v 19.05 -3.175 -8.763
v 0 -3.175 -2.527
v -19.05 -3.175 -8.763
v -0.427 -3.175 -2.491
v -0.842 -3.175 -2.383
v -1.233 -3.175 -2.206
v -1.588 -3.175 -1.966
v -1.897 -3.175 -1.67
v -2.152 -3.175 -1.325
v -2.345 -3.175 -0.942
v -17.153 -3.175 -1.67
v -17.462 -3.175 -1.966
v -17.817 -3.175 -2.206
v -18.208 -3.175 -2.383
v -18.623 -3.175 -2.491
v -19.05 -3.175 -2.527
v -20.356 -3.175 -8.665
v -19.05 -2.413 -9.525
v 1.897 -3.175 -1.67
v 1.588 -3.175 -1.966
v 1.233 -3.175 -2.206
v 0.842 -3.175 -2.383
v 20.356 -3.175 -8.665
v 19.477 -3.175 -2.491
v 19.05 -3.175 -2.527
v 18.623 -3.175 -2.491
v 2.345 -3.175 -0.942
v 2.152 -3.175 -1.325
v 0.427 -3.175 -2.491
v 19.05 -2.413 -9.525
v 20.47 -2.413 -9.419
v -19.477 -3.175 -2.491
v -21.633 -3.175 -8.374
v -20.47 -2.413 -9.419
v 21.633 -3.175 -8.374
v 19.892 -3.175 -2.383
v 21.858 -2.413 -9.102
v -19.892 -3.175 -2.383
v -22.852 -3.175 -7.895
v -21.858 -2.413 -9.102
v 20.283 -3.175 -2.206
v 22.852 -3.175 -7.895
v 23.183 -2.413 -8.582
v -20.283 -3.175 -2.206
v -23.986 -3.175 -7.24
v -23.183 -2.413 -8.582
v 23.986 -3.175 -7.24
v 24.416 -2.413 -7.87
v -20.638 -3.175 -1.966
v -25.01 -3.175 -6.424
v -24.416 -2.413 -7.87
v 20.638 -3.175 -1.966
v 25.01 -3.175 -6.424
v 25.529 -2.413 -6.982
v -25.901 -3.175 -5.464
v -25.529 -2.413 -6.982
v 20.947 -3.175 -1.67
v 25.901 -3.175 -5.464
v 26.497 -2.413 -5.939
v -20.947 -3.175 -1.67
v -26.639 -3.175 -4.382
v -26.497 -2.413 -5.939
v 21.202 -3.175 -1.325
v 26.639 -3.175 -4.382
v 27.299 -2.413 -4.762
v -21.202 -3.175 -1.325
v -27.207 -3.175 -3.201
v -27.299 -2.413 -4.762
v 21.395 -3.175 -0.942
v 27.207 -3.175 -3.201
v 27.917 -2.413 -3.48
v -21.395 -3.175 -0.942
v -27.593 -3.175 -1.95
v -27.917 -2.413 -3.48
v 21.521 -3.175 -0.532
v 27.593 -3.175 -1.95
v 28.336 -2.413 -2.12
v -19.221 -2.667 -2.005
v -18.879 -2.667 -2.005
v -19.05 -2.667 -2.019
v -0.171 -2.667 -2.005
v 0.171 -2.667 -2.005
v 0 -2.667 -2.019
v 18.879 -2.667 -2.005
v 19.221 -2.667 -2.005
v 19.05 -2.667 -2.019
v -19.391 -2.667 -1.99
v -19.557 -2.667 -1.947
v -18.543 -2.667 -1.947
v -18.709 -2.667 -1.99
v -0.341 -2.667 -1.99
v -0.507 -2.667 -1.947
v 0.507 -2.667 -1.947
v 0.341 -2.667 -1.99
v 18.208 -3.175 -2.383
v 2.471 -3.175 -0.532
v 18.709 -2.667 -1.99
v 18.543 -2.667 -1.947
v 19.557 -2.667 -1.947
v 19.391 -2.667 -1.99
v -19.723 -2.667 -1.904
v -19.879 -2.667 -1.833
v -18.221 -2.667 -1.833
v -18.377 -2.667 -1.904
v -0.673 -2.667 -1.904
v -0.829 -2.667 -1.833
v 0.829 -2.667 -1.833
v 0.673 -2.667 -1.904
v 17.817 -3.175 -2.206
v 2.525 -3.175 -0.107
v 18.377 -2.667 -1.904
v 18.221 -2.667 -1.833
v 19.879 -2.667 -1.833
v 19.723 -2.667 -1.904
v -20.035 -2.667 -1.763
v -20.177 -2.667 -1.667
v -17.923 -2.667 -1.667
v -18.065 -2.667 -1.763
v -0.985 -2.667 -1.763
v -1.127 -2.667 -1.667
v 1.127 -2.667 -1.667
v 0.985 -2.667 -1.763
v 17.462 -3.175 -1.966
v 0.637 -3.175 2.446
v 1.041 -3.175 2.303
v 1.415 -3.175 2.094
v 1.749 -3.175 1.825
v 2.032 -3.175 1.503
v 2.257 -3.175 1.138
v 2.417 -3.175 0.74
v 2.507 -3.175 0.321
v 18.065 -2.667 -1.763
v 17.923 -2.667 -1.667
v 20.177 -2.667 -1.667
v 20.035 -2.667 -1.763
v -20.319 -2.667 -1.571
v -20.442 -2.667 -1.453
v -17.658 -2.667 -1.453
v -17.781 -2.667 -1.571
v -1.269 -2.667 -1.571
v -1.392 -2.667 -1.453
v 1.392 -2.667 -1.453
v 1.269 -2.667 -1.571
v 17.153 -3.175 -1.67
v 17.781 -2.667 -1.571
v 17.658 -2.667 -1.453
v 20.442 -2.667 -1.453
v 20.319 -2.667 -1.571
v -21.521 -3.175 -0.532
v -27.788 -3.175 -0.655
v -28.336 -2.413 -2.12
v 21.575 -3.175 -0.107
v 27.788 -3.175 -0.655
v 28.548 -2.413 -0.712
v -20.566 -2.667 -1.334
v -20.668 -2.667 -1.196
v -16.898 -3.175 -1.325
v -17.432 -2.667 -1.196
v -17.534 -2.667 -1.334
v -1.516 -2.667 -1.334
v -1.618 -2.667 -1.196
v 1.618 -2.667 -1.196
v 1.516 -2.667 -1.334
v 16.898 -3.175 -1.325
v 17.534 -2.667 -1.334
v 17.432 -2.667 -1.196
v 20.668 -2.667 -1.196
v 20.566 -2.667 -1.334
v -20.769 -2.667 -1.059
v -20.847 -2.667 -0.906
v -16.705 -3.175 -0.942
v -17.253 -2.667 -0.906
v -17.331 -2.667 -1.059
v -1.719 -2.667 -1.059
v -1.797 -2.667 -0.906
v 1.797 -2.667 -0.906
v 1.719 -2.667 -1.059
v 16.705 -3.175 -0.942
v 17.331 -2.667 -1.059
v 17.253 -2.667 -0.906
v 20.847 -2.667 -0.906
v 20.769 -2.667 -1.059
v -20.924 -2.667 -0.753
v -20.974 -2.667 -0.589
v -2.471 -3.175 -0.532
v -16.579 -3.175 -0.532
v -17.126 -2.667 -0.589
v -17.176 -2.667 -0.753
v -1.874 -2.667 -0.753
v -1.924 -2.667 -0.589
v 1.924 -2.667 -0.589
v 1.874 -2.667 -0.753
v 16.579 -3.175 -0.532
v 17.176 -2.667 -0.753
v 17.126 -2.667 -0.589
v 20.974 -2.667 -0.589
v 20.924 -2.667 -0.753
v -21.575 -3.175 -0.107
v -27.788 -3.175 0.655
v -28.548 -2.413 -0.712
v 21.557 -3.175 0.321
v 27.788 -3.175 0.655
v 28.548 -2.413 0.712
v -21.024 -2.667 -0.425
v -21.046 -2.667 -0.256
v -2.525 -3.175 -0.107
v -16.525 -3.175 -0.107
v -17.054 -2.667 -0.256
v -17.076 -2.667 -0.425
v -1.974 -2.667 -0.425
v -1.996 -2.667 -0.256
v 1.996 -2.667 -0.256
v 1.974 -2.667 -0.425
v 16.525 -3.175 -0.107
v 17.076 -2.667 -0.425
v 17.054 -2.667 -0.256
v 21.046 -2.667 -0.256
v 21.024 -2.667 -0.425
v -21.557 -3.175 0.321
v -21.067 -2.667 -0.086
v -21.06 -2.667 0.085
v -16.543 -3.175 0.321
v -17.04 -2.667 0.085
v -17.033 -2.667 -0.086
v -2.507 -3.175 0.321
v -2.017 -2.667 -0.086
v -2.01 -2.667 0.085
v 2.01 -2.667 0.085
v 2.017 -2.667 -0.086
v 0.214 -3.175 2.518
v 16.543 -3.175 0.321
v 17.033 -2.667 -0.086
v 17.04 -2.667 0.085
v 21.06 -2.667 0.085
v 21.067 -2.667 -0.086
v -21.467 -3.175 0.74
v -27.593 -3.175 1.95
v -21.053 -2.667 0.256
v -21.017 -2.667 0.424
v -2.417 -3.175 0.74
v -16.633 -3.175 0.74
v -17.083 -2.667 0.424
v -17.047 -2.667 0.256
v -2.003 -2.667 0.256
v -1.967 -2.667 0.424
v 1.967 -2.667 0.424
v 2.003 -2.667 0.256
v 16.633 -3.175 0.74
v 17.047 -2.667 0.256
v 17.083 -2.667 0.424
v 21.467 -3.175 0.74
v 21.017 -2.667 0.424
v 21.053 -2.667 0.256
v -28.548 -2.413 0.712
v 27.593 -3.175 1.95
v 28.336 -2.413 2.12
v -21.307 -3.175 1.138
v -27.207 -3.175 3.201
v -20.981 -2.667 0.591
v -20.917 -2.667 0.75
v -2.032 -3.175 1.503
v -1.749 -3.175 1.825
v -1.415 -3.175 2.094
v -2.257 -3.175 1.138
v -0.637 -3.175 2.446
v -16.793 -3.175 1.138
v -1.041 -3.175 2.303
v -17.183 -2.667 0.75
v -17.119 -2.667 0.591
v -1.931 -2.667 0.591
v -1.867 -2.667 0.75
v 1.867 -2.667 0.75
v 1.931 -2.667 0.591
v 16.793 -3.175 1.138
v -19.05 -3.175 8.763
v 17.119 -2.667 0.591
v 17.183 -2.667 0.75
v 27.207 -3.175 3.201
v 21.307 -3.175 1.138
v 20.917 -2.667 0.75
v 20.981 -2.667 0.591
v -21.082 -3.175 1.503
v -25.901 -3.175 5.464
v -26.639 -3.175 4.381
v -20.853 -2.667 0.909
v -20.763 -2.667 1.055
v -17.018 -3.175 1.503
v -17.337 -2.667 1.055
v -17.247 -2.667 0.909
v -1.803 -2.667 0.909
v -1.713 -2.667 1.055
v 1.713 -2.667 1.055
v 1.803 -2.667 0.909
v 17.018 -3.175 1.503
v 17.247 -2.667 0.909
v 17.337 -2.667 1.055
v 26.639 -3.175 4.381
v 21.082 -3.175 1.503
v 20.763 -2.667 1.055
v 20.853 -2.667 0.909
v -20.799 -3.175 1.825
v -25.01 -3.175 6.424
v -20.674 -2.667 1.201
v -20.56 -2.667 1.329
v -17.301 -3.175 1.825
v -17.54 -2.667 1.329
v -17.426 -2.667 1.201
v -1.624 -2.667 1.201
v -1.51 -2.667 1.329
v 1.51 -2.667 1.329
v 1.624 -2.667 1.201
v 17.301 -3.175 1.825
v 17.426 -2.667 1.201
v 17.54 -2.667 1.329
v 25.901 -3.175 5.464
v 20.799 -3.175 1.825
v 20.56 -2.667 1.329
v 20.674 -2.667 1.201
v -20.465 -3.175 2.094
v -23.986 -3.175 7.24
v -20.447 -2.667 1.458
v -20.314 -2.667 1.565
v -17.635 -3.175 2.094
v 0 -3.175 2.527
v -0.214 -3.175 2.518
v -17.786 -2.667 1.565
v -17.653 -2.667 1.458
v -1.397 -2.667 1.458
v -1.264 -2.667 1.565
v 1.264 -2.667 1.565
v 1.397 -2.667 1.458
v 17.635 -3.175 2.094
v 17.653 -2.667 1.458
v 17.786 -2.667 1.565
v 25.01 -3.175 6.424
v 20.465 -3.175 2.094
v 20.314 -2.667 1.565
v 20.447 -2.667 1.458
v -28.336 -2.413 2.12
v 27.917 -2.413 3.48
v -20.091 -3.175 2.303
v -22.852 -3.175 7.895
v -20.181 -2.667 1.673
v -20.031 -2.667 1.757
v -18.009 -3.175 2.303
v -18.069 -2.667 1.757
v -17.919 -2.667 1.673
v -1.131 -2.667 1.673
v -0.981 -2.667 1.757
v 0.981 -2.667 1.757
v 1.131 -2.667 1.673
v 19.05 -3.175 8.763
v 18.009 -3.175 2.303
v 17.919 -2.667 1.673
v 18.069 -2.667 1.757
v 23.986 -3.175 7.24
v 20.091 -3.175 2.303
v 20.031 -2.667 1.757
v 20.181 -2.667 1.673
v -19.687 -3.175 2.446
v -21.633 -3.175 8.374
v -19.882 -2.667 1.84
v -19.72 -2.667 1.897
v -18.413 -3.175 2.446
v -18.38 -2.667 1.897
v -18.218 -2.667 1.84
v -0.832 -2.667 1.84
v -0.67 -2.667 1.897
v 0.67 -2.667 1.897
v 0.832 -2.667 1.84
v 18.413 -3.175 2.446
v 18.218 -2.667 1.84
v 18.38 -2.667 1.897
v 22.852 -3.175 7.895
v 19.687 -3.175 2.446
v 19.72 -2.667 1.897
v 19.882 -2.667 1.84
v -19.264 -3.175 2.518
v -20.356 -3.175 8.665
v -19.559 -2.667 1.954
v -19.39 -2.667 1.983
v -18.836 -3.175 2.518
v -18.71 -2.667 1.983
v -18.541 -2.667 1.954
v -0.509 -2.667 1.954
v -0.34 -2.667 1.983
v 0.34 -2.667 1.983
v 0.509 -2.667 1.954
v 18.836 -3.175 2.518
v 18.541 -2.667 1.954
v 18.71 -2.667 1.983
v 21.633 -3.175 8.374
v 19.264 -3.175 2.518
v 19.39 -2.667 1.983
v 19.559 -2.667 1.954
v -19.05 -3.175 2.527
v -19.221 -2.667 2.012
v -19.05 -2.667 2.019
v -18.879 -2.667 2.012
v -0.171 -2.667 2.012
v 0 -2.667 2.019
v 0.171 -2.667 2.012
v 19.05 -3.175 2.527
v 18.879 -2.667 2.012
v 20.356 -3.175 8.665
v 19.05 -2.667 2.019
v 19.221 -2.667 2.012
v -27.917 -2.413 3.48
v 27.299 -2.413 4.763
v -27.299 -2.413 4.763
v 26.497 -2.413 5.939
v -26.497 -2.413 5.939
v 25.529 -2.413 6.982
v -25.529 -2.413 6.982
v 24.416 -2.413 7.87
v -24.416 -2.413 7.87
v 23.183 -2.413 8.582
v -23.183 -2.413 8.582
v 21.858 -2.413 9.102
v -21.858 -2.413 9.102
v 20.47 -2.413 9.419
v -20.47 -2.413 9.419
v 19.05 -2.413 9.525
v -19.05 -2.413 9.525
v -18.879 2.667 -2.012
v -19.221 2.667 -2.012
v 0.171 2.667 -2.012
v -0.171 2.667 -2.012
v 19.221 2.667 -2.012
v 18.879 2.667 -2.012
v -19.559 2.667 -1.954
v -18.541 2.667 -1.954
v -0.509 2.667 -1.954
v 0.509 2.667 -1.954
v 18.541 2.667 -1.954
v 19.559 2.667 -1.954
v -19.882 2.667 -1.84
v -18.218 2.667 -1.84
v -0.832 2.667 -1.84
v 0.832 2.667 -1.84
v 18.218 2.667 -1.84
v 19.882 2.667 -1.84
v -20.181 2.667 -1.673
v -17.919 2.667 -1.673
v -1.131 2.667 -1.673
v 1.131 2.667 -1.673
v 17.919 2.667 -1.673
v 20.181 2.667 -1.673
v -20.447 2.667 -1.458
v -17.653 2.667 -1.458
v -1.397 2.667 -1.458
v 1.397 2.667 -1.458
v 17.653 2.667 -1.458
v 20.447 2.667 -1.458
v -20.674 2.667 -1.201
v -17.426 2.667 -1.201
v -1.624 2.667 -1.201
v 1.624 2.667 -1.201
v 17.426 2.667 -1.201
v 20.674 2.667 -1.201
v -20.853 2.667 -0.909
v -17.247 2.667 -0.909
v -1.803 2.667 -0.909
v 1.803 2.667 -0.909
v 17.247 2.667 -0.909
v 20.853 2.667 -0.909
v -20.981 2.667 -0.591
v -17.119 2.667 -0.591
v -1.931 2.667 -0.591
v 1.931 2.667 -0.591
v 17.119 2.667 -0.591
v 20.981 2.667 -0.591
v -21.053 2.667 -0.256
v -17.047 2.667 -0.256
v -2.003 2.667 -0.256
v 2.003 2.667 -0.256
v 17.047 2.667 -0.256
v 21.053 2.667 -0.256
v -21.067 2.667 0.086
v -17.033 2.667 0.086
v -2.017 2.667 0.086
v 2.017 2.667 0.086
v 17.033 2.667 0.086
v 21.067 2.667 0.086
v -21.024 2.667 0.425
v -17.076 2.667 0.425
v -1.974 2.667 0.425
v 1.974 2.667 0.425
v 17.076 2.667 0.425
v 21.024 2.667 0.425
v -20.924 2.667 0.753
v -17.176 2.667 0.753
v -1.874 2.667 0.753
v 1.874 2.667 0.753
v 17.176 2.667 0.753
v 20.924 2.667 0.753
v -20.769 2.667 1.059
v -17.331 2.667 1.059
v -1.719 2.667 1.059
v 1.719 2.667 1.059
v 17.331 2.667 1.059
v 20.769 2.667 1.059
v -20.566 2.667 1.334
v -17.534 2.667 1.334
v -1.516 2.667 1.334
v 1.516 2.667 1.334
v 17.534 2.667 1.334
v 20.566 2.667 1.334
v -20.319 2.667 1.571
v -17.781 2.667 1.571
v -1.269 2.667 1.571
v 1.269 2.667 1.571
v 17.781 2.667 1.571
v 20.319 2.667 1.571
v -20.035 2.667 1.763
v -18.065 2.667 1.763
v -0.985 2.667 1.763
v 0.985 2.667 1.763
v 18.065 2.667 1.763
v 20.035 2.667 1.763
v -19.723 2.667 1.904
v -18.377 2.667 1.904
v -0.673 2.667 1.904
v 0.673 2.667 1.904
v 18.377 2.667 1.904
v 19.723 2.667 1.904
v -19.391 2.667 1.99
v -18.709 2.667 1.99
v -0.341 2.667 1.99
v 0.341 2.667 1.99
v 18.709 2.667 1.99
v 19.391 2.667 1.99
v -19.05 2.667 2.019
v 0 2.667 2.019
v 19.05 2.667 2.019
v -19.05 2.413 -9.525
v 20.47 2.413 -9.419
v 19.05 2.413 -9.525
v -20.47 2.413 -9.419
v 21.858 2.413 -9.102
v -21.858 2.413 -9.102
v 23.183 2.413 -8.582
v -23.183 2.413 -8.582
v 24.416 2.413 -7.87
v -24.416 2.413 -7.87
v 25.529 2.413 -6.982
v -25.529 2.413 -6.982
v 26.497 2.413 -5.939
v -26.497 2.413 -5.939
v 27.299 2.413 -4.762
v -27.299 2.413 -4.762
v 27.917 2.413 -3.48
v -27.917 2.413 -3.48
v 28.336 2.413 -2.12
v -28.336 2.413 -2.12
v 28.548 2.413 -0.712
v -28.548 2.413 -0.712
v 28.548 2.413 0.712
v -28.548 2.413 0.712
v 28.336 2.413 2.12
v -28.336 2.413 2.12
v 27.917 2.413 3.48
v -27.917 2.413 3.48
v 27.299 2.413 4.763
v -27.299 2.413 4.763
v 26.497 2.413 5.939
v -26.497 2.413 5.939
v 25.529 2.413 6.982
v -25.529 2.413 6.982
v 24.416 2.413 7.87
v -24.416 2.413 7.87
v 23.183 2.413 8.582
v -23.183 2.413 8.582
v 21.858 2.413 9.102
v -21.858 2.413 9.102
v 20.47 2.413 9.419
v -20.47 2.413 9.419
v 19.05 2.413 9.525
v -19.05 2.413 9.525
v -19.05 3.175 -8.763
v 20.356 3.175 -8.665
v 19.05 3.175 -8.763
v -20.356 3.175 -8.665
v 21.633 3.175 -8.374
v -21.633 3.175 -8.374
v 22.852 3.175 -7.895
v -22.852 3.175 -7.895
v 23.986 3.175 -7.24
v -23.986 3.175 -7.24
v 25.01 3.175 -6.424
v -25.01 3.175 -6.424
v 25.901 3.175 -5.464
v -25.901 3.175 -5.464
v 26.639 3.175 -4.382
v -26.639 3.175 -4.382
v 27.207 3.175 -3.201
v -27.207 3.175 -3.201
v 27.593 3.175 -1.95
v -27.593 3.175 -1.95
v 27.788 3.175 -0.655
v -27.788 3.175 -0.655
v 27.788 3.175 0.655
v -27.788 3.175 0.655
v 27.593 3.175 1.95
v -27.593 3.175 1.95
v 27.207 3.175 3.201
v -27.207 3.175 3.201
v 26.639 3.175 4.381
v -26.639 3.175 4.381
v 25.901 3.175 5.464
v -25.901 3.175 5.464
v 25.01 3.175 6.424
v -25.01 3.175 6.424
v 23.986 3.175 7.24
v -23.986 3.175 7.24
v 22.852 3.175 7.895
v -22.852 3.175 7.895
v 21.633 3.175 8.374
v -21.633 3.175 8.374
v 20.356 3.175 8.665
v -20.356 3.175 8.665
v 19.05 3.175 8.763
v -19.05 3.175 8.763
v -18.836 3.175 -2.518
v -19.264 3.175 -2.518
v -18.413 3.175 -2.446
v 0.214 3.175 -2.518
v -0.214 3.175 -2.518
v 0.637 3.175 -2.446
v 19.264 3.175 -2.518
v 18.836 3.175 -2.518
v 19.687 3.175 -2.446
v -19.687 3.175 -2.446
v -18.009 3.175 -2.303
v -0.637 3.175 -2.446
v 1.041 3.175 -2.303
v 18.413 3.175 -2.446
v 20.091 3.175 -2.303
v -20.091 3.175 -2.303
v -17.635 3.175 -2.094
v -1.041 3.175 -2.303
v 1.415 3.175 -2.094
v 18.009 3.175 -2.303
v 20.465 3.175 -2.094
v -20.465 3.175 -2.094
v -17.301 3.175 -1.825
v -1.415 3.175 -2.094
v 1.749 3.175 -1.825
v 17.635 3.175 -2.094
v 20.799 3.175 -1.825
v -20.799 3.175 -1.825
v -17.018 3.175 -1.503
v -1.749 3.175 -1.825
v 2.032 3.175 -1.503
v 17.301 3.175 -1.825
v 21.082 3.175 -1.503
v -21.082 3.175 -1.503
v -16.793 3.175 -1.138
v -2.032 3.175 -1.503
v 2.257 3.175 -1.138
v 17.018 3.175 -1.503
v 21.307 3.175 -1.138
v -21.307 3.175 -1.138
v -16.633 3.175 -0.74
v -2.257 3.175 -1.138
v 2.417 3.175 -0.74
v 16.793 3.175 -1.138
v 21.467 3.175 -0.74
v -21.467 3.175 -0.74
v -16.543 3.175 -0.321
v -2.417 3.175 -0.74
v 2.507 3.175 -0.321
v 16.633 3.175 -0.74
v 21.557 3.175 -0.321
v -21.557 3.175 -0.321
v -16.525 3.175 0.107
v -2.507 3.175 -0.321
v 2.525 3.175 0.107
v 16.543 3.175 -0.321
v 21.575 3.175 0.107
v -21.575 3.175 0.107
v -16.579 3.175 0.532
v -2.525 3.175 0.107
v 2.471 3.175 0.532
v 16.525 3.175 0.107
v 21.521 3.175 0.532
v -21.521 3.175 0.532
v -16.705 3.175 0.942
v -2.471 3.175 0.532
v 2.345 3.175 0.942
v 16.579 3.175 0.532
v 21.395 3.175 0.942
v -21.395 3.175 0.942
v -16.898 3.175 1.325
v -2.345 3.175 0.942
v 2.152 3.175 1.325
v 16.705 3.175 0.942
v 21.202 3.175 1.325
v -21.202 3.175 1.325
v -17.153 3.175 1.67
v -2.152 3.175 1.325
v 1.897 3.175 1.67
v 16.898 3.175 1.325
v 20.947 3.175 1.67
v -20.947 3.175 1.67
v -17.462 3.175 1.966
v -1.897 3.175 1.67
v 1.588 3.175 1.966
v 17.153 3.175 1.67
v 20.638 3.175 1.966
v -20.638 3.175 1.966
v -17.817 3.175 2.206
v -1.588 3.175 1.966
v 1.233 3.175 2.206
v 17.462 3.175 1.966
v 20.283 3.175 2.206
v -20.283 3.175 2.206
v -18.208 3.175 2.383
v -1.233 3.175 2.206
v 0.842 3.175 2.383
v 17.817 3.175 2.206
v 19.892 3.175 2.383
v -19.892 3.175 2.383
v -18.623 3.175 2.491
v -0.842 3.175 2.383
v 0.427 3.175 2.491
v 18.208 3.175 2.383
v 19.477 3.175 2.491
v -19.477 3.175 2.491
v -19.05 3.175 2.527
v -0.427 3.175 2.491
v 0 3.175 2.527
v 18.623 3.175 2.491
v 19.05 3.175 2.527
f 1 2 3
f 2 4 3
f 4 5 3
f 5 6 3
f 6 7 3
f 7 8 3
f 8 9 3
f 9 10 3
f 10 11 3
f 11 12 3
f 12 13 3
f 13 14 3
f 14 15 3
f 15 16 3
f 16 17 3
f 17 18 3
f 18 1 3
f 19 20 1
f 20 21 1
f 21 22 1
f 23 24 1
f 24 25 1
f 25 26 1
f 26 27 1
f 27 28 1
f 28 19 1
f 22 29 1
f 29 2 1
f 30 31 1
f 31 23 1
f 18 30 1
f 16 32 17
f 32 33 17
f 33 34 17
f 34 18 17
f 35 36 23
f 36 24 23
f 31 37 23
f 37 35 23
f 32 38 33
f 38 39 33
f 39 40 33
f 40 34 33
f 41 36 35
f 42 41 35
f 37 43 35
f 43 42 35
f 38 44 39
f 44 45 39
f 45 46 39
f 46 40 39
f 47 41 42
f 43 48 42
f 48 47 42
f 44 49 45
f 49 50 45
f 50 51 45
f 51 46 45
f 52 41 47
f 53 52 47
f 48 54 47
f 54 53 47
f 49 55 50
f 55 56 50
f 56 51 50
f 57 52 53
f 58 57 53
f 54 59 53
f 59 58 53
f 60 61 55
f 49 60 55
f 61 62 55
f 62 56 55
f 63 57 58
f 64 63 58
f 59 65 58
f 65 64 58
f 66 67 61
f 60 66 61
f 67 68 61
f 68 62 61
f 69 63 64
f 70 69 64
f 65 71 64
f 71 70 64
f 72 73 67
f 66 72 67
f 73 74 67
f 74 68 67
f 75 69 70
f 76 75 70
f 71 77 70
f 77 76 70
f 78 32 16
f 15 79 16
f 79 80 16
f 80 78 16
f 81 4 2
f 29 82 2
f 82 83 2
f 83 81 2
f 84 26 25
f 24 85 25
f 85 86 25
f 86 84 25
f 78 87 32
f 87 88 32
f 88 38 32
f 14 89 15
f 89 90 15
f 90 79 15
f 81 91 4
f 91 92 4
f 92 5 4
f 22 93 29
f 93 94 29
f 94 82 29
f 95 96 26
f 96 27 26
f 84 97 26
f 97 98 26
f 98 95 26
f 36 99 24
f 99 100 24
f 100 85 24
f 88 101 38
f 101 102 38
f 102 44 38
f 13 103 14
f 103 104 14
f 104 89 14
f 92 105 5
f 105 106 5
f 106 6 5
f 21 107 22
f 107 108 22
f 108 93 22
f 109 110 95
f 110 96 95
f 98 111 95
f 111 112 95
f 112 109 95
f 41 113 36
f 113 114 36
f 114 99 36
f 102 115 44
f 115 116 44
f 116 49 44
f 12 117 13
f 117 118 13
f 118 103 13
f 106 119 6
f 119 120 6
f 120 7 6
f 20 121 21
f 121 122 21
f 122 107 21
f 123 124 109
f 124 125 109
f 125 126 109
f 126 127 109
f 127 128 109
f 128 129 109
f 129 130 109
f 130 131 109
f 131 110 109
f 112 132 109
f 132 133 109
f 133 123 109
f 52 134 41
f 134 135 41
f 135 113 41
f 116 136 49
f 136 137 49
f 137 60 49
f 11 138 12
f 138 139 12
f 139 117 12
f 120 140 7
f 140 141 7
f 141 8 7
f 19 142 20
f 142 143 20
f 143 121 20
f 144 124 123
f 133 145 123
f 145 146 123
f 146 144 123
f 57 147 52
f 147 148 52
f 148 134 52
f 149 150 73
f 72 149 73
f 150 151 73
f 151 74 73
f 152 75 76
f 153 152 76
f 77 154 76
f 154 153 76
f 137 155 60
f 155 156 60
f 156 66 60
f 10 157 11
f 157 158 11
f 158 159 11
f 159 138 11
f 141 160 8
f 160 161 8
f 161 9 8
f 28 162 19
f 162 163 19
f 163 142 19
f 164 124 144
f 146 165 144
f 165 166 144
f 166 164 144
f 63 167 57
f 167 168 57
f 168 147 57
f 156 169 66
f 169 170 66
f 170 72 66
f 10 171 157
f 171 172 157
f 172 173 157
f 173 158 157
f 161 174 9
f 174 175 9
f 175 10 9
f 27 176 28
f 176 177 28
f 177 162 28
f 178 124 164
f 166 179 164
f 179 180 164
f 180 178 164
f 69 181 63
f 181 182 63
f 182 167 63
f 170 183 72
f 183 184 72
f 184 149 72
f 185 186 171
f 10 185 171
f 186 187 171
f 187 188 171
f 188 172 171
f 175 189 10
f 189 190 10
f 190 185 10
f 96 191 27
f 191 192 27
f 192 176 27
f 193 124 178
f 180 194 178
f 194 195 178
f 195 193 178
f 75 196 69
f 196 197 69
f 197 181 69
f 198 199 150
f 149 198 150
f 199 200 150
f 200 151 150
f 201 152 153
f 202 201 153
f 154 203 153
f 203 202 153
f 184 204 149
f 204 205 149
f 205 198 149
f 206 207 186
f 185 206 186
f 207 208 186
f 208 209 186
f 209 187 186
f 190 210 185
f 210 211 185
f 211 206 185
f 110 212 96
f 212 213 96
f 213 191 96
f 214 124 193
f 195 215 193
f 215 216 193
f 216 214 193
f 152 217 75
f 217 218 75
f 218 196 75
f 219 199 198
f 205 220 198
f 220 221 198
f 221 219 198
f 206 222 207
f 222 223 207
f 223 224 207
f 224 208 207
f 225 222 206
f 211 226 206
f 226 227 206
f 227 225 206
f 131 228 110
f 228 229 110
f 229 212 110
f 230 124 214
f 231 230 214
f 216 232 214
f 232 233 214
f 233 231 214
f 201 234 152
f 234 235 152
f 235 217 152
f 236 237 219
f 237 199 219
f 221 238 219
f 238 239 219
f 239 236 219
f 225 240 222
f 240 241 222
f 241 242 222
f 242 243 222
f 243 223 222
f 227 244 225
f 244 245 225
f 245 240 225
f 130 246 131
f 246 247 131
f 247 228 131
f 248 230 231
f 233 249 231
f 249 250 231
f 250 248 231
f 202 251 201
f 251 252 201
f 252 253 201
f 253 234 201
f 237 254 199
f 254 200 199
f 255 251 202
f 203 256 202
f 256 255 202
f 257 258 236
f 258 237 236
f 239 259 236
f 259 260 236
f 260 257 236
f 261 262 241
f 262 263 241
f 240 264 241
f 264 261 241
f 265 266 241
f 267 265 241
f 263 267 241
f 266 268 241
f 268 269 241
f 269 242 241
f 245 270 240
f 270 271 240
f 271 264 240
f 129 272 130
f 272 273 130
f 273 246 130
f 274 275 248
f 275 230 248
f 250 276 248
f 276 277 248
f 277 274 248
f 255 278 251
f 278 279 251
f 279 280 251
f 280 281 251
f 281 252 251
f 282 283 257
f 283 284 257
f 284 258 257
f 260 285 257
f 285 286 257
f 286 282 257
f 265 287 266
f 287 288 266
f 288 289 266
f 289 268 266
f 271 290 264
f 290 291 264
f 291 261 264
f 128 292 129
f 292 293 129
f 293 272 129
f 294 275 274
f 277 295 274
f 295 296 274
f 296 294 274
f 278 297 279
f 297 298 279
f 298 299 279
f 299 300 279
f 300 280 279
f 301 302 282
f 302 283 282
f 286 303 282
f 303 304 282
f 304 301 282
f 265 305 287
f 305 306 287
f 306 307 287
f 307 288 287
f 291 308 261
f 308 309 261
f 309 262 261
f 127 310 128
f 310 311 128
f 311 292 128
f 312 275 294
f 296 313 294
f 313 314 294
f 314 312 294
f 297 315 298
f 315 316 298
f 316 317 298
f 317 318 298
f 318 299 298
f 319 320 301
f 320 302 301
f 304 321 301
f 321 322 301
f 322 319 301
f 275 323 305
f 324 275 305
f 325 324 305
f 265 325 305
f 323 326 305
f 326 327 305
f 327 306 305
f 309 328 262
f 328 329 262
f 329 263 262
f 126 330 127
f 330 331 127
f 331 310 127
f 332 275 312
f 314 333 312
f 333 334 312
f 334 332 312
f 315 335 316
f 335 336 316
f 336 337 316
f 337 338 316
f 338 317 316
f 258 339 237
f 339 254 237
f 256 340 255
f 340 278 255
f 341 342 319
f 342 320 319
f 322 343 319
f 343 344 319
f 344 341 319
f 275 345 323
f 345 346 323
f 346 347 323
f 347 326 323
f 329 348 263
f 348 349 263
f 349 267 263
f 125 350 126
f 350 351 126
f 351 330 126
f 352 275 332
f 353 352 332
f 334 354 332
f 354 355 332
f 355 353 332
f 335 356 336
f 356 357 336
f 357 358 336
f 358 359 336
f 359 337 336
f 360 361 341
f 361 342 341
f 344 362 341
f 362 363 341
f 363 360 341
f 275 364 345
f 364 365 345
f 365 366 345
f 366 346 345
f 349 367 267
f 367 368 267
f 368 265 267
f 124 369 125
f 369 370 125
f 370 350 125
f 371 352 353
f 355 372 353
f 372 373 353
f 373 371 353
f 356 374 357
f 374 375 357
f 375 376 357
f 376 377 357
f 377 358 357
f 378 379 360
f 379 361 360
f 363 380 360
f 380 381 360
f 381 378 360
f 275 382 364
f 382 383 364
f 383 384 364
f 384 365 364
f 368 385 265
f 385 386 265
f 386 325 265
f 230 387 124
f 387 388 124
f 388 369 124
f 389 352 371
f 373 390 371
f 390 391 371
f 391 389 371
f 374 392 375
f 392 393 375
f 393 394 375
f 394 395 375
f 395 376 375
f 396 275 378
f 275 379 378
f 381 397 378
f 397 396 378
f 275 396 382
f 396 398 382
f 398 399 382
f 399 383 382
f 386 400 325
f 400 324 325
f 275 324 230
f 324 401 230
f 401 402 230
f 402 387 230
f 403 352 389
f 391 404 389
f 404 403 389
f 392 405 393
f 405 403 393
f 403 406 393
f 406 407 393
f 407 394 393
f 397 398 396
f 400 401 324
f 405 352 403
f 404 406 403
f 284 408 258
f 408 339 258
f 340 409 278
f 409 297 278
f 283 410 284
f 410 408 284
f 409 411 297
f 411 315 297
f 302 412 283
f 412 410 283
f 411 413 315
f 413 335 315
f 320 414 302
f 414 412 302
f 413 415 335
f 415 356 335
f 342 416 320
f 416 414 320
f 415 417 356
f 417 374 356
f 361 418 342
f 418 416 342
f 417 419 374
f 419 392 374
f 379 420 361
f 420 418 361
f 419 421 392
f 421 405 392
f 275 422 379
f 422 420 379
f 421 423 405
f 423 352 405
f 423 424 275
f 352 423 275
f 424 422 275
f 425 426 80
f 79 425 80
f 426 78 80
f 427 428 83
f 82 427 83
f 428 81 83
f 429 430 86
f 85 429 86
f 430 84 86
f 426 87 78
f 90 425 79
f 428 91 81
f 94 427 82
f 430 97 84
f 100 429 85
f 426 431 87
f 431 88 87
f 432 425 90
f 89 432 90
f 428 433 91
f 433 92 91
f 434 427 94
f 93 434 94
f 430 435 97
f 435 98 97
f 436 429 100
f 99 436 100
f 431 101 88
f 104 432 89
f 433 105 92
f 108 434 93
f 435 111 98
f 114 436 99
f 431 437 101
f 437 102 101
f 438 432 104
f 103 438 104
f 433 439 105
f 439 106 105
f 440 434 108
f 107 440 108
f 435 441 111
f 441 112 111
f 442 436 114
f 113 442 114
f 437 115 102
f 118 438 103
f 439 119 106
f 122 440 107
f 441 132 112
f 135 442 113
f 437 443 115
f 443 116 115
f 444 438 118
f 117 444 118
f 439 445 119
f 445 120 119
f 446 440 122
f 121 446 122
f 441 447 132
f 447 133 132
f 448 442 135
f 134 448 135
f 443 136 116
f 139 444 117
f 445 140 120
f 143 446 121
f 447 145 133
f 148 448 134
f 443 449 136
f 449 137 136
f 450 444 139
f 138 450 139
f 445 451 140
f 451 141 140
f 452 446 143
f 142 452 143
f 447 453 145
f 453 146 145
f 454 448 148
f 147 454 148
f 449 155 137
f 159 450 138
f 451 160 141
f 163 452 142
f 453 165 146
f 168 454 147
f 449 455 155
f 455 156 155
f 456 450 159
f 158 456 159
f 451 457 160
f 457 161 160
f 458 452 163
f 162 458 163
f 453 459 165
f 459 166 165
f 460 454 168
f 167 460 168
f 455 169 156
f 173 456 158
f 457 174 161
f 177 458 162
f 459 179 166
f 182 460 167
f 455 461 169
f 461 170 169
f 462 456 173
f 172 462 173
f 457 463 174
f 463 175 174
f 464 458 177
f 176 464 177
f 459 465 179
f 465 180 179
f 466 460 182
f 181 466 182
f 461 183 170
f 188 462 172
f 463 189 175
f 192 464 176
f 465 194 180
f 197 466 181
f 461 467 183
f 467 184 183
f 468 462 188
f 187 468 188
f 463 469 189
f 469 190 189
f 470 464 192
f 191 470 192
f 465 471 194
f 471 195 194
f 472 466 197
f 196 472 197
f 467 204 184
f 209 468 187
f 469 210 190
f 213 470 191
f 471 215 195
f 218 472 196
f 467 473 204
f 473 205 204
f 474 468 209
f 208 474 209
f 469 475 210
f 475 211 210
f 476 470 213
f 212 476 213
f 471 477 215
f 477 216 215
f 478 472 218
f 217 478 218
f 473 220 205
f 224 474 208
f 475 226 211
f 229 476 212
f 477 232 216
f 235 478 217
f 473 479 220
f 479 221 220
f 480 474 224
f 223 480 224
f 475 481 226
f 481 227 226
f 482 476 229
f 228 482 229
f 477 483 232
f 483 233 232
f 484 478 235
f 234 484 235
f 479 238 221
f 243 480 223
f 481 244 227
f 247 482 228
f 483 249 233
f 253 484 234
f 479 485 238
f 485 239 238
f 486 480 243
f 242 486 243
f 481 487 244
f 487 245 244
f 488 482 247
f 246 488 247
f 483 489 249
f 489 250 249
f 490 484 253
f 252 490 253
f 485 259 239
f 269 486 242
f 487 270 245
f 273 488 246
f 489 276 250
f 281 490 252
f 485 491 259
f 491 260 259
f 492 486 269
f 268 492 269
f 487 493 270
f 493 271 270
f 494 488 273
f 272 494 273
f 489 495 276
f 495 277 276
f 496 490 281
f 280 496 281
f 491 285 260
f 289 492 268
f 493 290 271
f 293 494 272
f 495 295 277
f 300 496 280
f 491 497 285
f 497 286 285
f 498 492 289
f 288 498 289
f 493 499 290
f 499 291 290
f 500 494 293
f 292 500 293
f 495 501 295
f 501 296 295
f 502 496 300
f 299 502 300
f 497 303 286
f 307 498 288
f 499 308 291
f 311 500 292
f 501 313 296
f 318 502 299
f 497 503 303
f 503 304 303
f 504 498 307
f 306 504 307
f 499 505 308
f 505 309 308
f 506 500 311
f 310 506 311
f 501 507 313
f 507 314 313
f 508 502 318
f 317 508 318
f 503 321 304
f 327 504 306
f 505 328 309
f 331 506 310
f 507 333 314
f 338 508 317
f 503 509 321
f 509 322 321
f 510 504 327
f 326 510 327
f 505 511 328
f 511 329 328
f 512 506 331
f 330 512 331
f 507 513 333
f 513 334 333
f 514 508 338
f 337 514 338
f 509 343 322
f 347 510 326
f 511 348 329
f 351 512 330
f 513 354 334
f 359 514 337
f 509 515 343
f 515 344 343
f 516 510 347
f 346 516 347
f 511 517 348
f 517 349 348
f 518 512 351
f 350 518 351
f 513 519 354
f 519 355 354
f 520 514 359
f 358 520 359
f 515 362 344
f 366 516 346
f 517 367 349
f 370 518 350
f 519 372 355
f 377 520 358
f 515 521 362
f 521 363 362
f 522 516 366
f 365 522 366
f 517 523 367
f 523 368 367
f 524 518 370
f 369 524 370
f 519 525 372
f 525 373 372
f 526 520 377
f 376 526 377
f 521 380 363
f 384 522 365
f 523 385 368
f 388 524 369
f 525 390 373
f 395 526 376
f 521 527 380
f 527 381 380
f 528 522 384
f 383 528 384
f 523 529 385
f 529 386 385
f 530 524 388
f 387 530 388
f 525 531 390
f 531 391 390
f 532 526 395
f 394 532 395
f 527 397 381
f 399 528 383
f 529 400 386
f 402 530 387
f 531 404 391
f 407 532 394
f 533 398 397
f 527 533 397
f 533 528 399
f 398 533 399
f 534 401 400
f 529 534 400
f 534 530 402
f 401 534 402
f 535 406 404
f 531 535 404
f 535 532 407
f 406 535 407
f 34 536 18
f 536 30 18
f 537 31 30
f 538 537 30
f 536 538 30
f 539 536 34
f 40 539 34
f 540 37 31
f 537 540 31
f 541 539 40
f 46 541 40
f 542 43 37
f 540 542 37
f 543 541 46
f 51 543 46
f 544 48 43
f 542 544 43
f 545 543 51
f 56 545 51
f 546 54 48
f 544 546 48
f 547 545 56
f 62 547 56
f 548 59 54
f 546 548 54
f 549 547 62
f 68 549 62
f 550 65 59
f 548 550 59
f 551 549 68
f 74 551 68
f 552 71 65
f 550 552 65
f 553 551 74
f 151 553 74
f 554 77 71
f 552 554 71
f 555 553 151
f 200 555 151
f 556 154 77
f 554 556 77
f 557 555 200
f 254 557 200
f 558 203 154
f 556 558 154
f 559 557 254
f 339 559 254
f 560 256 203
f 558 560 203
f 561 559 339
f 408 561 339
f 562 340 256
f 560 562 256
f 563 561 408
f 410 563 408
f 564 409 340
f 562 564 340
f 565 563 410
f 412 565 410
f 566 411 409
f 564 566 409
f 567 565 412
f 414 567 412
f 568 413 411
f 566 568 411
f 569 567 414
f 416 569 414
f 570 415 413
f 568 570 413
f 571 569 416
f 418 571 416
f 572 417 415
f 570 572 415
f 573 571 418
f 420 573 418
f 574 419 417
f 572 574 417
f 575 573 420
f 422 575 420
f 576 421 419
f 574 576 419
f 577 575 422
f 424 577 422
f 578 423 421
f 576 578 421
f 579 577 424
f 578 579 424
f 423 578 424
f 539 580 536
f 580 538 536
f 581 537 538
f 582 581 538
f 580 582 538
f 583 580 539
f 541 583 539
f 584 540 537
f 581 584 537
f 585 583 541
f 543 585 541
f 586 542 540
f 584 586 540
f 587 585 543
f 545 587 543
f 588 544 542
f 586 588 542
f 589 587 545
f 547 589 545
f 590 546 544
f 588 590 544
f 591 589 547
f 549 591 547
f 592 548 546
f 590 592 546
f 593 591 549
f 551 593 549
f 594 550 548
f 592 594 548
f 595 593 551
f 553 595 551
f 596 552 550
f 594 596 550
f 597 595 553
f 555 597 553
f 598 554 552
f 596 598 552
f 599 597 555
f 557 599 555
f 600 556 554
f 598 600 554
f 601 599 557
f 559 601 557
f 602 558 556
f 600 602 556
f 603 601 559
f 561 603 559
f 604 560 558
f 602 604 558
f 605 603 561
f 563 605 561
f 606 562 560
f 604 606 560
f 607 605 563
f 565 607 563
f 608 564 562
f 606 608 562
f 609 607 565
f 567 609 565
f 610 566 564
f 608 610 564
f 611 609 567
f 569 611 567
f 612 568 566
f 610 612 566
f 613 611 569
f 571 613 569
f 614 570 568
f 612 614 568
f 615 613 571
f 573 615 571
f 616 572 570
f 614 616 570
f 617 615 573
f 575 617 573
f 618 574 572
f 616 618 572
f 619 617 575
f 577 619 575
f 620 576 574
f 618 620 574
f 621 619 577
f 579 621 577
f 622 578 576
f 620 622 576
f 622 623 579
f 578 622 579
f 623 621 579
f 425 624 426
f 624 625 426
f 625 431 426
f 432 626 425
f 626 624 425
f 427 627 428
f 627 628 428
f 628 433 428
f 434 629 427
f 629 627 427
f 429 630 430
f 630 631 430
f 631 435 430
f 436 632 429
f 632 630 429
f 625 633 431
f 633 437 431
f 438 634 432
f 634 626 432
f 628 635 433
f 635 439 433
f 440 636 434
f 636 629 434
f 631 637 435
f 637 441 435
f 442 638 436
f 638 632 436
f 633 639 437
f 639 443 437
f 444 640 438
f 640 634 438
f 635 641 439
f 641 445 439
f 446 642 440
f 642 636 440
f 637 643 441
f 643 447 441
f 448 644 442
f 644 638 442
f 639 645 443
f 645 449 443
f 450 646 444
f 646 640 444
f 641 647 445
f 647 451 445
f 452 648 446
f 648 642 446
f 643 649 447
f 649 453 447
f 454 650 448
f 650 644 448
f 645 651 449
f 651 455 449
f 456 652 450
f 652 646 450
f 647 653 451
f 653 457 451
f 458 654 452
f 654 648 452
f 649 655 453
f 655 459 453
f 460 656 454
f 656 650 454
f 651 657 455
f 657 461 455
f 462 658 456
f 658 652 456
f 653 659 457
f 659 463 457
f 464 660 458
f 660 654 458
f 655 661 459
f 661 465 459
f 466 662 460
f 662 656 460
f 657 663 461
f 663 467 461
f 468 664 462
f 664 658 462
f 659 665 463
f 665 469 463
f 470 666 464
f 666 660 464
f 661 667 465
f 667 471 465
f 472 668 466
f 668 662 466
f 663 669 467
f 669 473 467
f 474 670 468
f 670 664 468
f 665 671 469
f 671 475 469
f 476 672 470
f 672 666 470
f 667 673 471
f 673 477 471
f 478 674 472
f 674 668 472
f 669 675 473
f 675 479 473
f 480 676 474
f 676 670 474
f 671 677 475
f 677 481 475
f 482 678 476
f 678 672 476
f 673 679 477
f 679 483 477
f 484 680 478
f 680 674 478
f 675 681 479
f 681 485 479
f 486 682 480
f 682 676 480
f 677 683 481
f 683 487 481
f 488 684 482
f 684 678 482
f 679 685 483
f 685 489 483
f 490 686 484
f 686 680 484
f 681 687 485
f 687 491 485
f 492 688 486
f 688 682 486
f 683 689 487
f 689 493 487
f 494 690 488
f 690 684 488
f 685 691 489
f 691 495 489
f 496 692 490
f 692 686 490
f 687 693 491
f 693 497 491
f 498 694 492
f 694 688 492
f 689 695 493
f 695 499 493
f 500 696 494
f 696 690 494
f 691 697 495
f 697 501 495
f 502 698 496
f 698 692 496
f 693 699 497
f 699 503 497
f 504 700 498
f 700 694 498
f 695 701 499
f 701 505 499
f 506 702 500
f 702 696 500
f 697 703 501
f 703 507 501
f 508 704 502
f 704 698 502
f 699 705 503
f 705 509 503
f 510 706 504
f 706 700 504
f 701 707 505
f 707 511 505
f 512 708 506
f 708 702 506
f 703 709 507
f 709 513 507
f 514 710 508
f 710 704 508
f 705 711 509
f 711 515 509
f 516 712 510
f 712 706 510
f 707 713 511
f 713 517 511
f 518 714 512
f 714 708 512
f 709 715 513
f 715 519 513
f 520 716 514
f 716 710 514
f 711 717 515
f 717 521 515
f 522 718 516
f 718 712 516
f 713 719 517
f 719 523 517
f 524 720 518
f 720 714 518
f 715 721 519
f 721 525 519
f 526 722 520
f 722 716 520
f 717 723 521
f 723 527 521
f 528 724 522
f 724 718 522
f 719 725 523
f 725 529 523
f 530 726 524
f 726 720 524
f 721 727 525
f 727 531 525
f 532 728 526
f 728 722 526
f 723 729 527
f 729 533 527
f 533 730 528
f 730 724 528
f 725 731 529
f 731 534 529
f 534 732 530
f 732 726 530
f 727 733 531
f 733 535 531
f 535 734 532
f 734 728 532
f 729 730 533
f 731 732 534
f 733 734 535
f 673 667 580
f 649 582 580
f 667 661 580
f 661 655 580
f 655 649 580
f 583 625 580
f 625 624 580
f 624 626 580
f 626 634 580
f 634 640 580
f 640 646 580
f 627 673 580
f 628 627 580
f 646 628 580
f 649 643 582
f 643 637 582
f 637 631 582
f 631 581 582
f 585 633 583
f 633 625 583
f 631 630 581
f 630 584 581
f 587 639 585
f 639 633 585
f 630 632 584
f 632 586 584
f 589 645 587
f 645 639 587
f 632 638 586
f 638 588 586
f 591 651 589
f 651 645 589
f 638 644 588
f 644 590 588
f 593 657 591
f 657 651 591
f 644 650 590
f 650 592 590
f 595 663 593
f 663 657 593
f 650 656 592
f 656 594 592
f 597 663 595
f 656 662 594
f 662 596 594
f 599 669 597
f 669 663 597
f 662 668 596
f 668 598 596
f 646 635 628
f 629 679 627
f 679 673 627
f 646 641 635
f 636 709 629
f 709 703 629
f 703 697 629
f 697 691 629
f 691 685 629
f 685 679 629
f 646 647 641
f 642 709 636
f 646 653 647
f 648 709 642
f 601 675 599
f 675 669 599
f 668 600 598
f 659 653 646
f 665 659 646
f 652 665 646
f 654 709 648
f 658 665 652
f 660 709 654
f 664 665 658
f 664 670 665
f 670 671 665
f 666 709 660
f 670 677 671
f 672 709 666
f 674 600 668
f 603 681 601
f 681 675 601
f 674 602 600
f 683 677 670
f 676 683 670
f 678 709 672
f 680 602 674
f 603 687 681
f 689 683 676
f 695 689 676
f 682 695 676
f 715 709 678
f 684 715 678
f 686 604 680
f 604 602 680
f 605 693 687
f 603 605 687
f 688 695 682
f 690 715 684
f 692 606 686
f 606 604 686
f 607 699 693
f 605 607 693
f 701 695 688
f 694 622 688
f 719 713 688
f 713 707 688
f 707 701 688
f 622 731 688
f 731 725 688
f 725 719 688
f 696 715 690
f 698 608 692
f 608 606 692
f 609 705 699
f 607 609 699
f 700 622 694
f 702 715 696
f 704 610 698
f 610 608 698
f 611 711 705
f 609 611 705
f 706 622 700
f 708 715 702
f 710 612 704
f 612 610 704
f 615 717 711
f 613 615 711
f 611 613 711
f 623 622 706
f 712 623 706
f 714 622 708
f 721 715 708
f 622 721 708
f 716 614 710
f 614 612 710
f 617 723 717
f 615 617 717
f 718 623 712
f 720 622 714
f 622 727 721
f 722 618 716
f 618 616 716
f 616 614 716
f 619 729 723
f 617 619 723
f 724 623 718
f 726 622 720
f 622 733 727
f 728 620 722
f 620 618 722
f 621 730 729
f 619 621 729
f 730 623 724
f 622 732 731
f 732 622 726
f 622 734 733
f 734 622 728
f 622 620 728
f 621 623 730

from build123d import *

# Parameters (mm, degrees)
BOSS_EXTRUDE2_DEPTH        = 3.175
F_10_32_TAPPED_HOLE2_D     = 4.0386
F_10_32_TAPPED_HOLE2_DEPTH = 6.35
CHAMFER4_SIZE              = 0.762
CHAMFER5_SIZE              = 0.508


with BuildPart() as part:
    # Sketch10 → Boss-Extrude2 (new body, symmetric)
    with BuildSketch(Plane(origin=(0, 0, 0), x_dir=(1, 0, 0), z_dir=(0, 1, 0))):
        with BuildLine():
            Line((-19.05, 9.525), (19.05, 9.525))
            ThreePointArc((19.05, 9.525), (28.575, 0), (19.05, -9.525))
            Line((19.05, -9.525), (-19.05, -9.525))
            ThreePointArc((-19.05, -9.525), (-28.575, 0), (-19.05, 9.525))
        make_face()
    extrude(amount=BOSS_EXTRUDE2_DEPTH, both=True)

    # #10-32 Tapped Hole2
    with Locations(Plane(origin=(0, 3.175, 0), x_dir=(1, 0, 0), z_dir=(0, 1, 0))):
        with Locations((19.05, 0), (-19.05, 0), (0, 0)):
            Hole(F_10_32_TAPPED_HOLE2_D / 2, depth=F_10_32_TAPPED_HOLE2_DEPTH)

    # Chamfer4
    chamfer4_edges = [part.edges().sort_by_distance(p)[0] for p in [
        (28.575, 3.175, 0),
        (0, 3.175, -9.525),
        (-28.575, 3.175, 0),
        (0, -3.175, -9.525),
        (28.575, -3.175, 0),
        (0, -3.175, 9.525),
        (-28.575, -3.175, 0),
        (0, 3.175, 9.525),
    ]]
    chamfer(chamfer4_edges, length=CHAMFER4_SIZE)

    # Chamfer5
    chamfer5_edges = [part.edges().sort_by_distance(p)[0] for p in [
        (2.0193, 3.175, 0),
        (2.0193, -3.175, 0),
        (-17.0307, 3.175, 0),
        (-17.0307, -3.175, 0),
        (21.0693, 3.175, 0),
        (21.0693, -3.175, 0),
    ]]
    chamfer(chamfer5_edges, length=CHAMFER5_SIZE)


solid = part.part
